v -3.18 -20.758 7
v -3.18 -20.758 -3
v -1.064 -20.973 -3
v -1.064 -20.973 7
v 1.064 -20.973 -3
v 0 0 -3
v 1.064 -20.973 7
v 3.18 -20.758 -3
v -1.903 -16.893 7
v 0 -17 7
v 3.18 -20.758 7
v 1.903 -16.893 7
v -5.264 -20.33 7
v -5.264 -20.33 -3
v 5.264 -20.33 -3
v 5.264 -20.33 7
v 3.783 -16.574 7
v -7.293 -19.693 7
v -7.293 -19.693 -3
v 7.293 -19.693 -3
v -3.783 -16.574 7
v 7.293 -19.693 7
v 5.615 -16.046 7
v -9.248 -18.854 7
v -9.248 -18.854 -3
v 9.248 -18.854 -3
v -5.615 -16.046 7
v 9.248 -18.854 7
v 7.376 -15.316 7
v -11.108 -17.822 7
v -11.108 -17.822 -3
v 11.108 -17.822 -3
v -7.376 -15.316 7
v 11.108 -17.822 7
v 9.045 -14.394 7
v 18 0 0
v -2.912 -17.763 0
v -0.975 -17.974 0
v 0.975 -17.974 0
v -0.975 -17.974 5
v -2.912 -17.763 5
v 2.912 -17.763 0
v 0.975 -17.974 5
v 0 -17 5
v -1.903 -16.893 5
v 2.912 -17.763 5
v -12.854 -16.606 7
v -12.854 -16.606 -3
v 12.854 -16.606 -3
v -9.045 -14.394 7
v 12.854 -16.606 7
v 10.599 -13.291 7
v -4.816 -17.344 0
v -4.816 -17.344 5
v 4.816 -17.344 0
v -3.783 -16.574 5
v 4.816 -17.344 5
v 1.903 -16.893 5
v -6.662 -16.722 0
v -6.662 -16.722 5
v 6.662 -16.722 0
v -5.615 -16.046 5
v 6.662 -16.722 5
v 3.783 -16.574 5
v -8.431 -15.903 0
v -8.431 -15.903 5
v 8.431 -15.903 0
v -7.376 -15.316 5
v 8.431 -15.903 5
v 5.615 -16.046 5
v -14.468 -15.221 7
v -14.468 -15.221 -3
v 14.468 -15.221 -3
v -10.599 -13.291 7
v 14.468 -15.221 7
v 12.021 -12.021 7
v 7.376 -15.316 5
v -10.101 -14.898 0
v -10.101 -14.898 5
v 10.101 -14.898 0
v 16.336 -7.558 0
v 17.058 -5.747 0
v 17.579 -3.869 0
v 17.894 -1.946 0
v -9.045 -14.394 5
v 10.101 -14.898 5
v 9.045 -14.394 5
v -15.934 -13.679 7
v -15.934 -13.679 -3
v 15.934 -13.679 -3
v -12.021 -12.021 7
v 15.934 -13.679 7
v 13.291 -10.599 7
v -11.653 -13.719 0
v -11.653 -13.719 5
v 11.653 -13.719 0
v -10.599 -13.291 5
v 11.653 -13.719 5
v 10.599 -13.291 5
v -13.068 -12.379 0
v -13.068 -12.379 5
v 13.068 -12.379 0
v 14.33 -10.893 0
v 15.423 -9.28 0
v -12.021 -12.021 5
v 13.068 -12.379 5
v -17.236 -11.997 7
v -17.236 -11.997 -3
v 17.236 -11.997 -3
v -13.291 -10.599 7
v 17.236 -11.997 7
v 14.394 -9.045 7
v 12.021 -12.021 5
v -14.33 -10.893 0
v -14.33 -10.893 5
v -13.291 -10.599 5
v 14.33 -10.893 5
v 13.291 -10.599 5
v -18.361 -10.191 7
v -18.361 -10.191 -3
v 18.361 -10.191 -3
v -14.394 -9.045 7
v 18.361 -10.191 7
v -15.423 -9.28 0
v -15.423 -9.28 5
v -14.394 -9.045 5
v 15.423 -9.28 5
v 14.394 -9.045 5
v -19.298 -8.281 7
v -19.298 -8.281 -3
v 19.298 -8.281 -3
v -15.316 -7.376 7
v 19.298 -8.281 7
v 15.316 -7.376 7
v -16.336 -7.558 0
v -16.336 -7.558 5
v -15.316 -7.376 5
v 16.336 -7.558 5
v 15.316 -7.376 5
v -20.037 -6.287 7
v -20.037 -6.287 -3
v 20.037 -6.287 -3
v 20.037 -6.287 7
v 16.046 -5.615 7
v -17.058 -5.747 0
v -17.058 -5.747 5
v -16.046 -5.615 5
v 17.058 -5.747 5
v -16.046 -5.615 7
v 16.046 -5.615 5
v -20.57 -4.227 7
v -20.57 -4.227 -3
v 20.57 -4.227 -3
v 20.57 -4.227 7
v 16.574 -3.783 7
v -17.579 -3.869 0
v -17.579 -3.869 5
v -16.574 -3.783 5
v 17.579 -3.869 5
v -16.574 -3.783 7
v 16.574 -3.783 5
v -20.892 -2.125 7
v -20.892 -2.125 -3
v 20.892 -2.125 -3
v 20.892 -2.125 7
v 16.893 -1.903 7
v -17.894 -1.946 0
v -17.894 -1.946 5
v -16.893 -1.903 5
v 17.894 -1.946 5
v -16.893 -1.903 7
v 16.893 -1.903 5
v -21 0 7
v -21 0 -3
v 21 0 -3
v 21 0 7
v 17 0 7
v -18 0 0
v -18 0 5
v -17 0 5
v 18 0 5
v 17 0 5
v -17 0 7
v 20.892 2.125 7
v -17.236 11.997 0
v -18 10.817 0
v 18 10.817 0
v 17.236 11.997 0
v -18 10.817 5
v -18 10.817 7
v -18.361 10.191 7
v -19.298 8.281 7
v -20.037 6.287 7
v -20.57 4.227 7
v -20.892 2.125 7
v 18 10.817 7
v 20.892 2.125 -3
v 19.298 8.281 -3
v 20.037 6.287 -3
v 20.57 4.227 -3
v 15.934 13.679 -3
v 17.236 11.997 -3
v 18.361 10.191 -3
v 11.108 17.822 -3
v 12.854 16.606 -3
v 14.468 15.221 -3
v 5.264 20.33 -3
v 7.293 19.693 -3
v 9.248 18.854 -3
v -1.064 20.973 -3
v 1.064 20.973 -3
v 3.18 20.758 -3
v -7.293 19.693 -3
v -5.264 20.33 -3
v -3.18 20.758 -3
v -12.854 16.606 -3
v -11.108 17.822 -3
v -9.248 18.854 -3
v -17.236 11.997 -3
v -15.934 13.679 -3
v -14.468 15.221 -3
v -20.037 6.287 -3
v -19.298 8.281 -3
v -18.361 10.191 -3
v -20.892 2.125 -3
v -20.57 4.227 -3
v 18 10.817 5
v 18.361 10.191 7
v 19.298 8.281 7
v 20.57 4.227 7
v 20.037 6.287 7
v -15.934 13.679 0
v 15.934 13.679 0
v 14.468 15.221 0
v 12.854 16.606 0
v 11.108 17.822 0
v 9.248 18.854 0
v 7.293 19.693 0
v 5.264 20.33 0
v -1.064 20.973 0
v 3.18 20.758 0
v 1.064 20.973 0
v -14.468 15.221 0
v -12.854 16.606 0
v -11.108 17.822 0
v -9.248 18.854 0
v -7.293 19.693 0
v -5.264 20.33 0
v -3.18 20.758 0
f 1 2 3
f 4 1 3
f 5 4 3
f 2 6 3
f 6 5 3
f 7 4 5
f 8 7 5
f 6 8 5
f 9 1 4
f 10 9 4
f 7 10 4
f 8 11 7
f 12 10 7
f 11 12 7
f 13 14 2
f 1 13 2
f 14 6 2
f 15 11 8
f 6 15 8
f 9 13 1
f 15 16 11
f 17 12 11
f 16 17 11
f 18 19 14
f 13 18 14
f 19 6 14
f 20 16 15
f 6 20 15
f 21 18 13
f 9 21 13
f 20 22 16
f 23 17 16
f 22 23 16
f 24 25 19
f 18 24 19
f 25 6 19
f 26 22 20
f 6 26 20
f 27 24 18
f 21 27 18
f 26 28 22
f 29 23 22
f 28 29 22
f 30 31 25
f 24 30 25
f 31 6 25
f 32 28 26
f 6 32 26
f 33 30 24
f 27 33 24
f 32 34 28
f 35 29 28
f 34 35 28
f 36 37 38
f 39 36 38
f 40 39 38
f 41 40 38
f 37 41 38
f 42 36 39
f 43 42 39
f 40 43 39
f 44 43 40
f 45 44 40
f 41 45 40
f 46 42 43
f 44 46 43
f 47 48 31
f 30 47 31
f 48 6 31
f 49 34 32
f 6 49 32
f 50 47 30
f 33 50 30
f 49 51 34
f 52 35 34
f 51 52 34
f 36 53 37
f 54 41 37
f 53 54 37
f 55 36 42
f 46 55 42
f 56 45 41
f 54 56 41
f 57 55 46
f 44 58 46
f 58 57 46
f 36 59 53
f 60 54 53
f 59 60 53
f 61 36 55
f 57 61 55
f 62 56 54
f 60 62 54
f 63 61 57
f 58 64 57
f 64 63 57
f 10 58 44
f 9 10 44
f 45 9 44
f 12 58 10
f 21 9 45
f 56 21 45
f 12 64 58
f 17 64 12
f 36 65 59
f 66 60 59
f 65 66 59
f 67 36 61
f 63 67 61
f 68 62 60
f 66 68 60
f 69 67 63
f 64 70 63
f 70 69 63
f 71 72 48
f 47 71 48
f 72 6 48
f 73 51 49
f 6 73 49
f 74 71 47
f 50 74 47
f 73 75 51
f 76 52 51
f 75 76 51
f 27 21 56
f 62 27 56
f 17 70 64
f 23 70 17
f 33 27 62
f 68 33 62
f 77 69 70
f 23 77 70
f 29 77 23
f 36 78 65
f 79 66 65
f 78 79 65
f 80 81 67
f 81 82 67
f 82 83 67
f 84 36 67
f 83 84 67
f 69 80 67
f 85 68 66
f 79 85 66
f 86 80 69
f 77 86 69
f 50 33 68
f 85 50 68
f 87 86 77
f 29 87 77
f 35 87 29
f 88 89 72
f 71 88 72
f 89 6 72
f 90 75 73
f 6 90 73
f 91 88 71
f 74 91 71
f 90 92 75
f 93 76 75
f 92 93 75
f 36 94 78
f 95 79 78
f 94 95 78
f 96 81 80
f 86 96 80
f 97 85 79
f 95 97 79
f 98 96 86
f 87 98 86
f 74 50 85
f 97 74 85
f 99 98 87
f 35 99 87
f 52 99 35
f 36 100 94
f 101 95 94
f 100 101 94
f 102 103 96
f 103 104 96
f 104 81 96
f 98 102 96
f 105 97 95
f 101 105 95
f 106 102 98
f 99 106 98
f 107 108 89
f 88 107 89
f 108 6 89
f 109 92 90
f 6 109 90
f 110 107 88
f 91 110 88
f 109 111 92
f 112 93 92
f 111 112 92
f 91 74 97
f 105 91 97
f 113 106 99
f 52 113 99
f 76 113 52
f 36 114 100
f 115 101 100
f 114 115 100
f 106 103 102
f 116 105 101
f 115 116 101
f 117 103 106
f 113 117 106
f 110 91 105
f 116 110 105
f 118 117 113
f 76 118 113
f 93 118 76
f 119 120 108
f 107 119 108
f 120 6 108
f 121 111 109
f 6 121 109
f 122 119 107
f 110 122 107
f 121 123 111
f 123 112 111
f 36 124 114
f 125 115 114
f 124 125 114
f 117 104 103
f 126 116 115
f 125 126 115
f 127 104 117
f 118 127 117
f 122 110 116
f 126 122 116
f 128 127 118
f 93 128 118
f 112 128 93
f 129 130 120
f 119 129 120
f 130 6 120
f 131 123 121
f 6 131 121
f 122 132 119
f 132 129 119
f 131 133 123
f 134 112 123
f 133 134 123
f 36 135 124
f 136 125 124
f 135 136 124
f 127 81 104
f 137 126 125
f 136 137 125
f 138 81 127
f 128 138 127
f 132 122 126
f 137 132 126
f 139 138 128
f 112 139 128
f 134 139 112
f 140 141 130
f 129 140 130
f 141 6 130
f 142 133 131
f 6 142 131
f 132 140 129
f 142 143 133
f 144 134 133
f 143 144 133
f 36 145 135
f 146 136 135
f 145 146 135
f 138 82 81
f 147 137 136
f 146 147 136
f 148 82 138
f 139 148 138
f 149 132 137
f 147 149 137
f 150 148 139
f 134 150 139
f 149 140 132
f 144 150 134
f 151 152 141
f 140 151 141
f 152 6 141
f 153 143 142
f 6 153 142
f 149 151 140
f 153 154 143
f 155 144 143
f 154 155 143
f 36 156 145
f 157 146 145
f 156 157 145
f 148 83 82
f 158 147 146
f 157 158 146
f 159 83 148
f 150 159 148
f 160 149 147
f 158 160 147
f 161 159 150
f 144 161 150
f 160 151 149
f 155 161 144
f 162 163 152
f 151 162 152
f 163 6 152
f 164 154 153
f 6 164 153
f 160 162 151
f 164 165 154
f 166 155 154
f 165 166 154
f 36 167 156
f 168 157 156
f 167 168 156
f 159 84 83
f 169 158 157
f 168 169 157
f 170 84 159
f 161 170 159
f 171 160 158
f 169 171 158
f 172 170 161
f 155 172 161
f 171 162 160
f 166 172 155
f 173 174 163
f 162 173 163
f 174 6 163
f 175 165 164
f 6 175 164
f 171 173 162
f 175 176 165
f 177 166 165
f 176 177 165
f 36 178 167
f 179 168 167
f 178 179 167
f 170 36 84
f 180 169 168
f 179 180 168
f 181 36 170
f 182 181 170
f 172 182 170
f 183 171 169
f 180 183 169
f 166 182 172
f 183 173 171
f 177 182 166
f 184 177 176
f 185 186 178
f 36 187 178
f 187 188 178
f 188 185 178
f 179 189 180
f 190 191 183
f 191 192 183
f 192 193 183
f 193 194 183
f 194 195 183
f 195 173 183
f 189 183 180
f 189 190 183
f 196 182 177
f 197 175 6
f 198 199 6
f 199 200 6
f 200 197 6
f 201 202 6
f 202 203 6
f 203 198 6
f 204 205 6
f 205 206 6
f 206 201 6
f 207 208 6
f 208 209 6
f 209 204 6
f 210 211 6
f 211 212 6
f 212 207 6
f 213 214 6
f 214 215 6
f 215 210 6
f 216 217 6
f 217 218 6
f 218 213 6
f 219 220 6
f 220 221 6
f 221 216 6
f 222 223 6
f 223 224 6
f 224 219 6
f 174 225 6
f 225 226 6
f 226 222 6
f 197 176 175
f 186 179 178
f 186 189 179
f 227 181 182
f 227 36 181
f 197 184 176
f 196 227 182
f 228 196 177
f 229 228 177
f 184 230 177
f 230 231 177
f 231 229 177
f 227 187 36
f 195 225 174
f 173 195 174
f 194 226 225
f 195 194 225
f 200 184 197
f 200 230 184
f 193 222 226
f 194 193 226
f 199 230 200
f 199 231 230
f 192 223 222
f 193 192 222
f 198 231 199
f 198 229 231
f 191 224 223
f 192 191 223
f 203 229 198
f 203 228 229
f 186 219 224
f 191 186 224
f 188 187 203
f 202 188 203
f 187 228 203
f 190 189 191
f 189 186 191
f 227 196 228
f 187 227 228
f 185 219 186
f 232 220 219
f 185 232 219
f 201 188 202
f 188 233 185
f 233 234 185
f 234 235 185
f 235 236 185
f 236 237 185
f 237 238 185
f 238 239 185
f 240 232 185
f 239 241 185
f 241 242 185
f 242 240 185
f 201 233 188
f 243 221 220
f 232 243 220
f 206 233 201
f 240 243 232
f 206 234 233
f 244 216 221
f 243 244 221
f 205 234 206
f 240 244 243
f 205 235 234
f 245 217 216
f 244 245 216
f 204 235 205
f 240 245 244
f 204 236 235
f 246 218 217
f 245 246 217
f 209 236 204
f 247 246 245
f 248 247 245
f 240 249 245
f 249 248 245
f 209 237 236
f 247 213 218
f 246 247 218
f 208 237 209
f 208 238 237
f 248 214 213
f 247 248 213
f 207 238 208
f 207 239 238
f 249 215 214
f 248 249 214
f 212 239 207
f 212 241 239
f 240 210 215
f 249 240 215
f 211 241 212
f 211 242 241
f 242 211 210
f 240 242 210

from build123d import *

# Parameters (mm, degrees)
ESBO_O1_R                = 21
RESSALTO_EXTRUS_O1_DEPTH = 3
RESSALTO_EXTRUS_O2_START = 5
RESSALTO_EXTRUS_O2_DEPTH = 5
RESSALTO_EXTRUS_O3_START = 2
RESSALTO_EXTRUS_O3_DEPTH = 2


with BuildPart() as part:
    # Esboço1 → Ressalto-extrusão1 (new body)
    with BuildSketch(Plane.XY):
        Circle(ESBO_O1_R)
    extrude(amount=-RESSALTO_EXTRUS_O1_DEPTH)

    # Esboço1<3> → Ressalto-extrusão2 (add)
    with BuildSketch(Plane.XY.offset(RESSALTO_EXTRUS_O2_START)):
        with BuildLine():
            ThreePointArc((18, 0), (0, -18), (-18, 0))
            Line((-18, 0), (-18, 10.816653826))
            ThreePointArc((-18, 10.816653826), (-5.61248608, -20.236106345), (21, 0))
            ThreePointArc((21, 0), (20.236106345, 5.61248608), (18, 10.816653826))
            Line((18, 10.816653826), (18, 0))
        make_face()
    extrude(amount=-RESSALTO_EXTRUS_O2_DEPTH)

    # Esboço3 → Ressalto-extrusão3 (add)
    with BuildSketch(Plane.XY.offset(5).offset(RESSALTO_EXTRUS_O3_START)):
        with BuildLine():
            Line((18, 10.816653826), (17, 0))
            ThreePointArc((17, 0), (0, -17), (-17, 0))
            Line((-17, 0), (-18, 10.816653826))
            ThreePointArc((-18, 10.816653826), (0, -21), (18, 10.816653826))
        make_face()
    extrude(amount=-RESSALTO_EXTRUS_O3_DEPTH)


solid = part.part
